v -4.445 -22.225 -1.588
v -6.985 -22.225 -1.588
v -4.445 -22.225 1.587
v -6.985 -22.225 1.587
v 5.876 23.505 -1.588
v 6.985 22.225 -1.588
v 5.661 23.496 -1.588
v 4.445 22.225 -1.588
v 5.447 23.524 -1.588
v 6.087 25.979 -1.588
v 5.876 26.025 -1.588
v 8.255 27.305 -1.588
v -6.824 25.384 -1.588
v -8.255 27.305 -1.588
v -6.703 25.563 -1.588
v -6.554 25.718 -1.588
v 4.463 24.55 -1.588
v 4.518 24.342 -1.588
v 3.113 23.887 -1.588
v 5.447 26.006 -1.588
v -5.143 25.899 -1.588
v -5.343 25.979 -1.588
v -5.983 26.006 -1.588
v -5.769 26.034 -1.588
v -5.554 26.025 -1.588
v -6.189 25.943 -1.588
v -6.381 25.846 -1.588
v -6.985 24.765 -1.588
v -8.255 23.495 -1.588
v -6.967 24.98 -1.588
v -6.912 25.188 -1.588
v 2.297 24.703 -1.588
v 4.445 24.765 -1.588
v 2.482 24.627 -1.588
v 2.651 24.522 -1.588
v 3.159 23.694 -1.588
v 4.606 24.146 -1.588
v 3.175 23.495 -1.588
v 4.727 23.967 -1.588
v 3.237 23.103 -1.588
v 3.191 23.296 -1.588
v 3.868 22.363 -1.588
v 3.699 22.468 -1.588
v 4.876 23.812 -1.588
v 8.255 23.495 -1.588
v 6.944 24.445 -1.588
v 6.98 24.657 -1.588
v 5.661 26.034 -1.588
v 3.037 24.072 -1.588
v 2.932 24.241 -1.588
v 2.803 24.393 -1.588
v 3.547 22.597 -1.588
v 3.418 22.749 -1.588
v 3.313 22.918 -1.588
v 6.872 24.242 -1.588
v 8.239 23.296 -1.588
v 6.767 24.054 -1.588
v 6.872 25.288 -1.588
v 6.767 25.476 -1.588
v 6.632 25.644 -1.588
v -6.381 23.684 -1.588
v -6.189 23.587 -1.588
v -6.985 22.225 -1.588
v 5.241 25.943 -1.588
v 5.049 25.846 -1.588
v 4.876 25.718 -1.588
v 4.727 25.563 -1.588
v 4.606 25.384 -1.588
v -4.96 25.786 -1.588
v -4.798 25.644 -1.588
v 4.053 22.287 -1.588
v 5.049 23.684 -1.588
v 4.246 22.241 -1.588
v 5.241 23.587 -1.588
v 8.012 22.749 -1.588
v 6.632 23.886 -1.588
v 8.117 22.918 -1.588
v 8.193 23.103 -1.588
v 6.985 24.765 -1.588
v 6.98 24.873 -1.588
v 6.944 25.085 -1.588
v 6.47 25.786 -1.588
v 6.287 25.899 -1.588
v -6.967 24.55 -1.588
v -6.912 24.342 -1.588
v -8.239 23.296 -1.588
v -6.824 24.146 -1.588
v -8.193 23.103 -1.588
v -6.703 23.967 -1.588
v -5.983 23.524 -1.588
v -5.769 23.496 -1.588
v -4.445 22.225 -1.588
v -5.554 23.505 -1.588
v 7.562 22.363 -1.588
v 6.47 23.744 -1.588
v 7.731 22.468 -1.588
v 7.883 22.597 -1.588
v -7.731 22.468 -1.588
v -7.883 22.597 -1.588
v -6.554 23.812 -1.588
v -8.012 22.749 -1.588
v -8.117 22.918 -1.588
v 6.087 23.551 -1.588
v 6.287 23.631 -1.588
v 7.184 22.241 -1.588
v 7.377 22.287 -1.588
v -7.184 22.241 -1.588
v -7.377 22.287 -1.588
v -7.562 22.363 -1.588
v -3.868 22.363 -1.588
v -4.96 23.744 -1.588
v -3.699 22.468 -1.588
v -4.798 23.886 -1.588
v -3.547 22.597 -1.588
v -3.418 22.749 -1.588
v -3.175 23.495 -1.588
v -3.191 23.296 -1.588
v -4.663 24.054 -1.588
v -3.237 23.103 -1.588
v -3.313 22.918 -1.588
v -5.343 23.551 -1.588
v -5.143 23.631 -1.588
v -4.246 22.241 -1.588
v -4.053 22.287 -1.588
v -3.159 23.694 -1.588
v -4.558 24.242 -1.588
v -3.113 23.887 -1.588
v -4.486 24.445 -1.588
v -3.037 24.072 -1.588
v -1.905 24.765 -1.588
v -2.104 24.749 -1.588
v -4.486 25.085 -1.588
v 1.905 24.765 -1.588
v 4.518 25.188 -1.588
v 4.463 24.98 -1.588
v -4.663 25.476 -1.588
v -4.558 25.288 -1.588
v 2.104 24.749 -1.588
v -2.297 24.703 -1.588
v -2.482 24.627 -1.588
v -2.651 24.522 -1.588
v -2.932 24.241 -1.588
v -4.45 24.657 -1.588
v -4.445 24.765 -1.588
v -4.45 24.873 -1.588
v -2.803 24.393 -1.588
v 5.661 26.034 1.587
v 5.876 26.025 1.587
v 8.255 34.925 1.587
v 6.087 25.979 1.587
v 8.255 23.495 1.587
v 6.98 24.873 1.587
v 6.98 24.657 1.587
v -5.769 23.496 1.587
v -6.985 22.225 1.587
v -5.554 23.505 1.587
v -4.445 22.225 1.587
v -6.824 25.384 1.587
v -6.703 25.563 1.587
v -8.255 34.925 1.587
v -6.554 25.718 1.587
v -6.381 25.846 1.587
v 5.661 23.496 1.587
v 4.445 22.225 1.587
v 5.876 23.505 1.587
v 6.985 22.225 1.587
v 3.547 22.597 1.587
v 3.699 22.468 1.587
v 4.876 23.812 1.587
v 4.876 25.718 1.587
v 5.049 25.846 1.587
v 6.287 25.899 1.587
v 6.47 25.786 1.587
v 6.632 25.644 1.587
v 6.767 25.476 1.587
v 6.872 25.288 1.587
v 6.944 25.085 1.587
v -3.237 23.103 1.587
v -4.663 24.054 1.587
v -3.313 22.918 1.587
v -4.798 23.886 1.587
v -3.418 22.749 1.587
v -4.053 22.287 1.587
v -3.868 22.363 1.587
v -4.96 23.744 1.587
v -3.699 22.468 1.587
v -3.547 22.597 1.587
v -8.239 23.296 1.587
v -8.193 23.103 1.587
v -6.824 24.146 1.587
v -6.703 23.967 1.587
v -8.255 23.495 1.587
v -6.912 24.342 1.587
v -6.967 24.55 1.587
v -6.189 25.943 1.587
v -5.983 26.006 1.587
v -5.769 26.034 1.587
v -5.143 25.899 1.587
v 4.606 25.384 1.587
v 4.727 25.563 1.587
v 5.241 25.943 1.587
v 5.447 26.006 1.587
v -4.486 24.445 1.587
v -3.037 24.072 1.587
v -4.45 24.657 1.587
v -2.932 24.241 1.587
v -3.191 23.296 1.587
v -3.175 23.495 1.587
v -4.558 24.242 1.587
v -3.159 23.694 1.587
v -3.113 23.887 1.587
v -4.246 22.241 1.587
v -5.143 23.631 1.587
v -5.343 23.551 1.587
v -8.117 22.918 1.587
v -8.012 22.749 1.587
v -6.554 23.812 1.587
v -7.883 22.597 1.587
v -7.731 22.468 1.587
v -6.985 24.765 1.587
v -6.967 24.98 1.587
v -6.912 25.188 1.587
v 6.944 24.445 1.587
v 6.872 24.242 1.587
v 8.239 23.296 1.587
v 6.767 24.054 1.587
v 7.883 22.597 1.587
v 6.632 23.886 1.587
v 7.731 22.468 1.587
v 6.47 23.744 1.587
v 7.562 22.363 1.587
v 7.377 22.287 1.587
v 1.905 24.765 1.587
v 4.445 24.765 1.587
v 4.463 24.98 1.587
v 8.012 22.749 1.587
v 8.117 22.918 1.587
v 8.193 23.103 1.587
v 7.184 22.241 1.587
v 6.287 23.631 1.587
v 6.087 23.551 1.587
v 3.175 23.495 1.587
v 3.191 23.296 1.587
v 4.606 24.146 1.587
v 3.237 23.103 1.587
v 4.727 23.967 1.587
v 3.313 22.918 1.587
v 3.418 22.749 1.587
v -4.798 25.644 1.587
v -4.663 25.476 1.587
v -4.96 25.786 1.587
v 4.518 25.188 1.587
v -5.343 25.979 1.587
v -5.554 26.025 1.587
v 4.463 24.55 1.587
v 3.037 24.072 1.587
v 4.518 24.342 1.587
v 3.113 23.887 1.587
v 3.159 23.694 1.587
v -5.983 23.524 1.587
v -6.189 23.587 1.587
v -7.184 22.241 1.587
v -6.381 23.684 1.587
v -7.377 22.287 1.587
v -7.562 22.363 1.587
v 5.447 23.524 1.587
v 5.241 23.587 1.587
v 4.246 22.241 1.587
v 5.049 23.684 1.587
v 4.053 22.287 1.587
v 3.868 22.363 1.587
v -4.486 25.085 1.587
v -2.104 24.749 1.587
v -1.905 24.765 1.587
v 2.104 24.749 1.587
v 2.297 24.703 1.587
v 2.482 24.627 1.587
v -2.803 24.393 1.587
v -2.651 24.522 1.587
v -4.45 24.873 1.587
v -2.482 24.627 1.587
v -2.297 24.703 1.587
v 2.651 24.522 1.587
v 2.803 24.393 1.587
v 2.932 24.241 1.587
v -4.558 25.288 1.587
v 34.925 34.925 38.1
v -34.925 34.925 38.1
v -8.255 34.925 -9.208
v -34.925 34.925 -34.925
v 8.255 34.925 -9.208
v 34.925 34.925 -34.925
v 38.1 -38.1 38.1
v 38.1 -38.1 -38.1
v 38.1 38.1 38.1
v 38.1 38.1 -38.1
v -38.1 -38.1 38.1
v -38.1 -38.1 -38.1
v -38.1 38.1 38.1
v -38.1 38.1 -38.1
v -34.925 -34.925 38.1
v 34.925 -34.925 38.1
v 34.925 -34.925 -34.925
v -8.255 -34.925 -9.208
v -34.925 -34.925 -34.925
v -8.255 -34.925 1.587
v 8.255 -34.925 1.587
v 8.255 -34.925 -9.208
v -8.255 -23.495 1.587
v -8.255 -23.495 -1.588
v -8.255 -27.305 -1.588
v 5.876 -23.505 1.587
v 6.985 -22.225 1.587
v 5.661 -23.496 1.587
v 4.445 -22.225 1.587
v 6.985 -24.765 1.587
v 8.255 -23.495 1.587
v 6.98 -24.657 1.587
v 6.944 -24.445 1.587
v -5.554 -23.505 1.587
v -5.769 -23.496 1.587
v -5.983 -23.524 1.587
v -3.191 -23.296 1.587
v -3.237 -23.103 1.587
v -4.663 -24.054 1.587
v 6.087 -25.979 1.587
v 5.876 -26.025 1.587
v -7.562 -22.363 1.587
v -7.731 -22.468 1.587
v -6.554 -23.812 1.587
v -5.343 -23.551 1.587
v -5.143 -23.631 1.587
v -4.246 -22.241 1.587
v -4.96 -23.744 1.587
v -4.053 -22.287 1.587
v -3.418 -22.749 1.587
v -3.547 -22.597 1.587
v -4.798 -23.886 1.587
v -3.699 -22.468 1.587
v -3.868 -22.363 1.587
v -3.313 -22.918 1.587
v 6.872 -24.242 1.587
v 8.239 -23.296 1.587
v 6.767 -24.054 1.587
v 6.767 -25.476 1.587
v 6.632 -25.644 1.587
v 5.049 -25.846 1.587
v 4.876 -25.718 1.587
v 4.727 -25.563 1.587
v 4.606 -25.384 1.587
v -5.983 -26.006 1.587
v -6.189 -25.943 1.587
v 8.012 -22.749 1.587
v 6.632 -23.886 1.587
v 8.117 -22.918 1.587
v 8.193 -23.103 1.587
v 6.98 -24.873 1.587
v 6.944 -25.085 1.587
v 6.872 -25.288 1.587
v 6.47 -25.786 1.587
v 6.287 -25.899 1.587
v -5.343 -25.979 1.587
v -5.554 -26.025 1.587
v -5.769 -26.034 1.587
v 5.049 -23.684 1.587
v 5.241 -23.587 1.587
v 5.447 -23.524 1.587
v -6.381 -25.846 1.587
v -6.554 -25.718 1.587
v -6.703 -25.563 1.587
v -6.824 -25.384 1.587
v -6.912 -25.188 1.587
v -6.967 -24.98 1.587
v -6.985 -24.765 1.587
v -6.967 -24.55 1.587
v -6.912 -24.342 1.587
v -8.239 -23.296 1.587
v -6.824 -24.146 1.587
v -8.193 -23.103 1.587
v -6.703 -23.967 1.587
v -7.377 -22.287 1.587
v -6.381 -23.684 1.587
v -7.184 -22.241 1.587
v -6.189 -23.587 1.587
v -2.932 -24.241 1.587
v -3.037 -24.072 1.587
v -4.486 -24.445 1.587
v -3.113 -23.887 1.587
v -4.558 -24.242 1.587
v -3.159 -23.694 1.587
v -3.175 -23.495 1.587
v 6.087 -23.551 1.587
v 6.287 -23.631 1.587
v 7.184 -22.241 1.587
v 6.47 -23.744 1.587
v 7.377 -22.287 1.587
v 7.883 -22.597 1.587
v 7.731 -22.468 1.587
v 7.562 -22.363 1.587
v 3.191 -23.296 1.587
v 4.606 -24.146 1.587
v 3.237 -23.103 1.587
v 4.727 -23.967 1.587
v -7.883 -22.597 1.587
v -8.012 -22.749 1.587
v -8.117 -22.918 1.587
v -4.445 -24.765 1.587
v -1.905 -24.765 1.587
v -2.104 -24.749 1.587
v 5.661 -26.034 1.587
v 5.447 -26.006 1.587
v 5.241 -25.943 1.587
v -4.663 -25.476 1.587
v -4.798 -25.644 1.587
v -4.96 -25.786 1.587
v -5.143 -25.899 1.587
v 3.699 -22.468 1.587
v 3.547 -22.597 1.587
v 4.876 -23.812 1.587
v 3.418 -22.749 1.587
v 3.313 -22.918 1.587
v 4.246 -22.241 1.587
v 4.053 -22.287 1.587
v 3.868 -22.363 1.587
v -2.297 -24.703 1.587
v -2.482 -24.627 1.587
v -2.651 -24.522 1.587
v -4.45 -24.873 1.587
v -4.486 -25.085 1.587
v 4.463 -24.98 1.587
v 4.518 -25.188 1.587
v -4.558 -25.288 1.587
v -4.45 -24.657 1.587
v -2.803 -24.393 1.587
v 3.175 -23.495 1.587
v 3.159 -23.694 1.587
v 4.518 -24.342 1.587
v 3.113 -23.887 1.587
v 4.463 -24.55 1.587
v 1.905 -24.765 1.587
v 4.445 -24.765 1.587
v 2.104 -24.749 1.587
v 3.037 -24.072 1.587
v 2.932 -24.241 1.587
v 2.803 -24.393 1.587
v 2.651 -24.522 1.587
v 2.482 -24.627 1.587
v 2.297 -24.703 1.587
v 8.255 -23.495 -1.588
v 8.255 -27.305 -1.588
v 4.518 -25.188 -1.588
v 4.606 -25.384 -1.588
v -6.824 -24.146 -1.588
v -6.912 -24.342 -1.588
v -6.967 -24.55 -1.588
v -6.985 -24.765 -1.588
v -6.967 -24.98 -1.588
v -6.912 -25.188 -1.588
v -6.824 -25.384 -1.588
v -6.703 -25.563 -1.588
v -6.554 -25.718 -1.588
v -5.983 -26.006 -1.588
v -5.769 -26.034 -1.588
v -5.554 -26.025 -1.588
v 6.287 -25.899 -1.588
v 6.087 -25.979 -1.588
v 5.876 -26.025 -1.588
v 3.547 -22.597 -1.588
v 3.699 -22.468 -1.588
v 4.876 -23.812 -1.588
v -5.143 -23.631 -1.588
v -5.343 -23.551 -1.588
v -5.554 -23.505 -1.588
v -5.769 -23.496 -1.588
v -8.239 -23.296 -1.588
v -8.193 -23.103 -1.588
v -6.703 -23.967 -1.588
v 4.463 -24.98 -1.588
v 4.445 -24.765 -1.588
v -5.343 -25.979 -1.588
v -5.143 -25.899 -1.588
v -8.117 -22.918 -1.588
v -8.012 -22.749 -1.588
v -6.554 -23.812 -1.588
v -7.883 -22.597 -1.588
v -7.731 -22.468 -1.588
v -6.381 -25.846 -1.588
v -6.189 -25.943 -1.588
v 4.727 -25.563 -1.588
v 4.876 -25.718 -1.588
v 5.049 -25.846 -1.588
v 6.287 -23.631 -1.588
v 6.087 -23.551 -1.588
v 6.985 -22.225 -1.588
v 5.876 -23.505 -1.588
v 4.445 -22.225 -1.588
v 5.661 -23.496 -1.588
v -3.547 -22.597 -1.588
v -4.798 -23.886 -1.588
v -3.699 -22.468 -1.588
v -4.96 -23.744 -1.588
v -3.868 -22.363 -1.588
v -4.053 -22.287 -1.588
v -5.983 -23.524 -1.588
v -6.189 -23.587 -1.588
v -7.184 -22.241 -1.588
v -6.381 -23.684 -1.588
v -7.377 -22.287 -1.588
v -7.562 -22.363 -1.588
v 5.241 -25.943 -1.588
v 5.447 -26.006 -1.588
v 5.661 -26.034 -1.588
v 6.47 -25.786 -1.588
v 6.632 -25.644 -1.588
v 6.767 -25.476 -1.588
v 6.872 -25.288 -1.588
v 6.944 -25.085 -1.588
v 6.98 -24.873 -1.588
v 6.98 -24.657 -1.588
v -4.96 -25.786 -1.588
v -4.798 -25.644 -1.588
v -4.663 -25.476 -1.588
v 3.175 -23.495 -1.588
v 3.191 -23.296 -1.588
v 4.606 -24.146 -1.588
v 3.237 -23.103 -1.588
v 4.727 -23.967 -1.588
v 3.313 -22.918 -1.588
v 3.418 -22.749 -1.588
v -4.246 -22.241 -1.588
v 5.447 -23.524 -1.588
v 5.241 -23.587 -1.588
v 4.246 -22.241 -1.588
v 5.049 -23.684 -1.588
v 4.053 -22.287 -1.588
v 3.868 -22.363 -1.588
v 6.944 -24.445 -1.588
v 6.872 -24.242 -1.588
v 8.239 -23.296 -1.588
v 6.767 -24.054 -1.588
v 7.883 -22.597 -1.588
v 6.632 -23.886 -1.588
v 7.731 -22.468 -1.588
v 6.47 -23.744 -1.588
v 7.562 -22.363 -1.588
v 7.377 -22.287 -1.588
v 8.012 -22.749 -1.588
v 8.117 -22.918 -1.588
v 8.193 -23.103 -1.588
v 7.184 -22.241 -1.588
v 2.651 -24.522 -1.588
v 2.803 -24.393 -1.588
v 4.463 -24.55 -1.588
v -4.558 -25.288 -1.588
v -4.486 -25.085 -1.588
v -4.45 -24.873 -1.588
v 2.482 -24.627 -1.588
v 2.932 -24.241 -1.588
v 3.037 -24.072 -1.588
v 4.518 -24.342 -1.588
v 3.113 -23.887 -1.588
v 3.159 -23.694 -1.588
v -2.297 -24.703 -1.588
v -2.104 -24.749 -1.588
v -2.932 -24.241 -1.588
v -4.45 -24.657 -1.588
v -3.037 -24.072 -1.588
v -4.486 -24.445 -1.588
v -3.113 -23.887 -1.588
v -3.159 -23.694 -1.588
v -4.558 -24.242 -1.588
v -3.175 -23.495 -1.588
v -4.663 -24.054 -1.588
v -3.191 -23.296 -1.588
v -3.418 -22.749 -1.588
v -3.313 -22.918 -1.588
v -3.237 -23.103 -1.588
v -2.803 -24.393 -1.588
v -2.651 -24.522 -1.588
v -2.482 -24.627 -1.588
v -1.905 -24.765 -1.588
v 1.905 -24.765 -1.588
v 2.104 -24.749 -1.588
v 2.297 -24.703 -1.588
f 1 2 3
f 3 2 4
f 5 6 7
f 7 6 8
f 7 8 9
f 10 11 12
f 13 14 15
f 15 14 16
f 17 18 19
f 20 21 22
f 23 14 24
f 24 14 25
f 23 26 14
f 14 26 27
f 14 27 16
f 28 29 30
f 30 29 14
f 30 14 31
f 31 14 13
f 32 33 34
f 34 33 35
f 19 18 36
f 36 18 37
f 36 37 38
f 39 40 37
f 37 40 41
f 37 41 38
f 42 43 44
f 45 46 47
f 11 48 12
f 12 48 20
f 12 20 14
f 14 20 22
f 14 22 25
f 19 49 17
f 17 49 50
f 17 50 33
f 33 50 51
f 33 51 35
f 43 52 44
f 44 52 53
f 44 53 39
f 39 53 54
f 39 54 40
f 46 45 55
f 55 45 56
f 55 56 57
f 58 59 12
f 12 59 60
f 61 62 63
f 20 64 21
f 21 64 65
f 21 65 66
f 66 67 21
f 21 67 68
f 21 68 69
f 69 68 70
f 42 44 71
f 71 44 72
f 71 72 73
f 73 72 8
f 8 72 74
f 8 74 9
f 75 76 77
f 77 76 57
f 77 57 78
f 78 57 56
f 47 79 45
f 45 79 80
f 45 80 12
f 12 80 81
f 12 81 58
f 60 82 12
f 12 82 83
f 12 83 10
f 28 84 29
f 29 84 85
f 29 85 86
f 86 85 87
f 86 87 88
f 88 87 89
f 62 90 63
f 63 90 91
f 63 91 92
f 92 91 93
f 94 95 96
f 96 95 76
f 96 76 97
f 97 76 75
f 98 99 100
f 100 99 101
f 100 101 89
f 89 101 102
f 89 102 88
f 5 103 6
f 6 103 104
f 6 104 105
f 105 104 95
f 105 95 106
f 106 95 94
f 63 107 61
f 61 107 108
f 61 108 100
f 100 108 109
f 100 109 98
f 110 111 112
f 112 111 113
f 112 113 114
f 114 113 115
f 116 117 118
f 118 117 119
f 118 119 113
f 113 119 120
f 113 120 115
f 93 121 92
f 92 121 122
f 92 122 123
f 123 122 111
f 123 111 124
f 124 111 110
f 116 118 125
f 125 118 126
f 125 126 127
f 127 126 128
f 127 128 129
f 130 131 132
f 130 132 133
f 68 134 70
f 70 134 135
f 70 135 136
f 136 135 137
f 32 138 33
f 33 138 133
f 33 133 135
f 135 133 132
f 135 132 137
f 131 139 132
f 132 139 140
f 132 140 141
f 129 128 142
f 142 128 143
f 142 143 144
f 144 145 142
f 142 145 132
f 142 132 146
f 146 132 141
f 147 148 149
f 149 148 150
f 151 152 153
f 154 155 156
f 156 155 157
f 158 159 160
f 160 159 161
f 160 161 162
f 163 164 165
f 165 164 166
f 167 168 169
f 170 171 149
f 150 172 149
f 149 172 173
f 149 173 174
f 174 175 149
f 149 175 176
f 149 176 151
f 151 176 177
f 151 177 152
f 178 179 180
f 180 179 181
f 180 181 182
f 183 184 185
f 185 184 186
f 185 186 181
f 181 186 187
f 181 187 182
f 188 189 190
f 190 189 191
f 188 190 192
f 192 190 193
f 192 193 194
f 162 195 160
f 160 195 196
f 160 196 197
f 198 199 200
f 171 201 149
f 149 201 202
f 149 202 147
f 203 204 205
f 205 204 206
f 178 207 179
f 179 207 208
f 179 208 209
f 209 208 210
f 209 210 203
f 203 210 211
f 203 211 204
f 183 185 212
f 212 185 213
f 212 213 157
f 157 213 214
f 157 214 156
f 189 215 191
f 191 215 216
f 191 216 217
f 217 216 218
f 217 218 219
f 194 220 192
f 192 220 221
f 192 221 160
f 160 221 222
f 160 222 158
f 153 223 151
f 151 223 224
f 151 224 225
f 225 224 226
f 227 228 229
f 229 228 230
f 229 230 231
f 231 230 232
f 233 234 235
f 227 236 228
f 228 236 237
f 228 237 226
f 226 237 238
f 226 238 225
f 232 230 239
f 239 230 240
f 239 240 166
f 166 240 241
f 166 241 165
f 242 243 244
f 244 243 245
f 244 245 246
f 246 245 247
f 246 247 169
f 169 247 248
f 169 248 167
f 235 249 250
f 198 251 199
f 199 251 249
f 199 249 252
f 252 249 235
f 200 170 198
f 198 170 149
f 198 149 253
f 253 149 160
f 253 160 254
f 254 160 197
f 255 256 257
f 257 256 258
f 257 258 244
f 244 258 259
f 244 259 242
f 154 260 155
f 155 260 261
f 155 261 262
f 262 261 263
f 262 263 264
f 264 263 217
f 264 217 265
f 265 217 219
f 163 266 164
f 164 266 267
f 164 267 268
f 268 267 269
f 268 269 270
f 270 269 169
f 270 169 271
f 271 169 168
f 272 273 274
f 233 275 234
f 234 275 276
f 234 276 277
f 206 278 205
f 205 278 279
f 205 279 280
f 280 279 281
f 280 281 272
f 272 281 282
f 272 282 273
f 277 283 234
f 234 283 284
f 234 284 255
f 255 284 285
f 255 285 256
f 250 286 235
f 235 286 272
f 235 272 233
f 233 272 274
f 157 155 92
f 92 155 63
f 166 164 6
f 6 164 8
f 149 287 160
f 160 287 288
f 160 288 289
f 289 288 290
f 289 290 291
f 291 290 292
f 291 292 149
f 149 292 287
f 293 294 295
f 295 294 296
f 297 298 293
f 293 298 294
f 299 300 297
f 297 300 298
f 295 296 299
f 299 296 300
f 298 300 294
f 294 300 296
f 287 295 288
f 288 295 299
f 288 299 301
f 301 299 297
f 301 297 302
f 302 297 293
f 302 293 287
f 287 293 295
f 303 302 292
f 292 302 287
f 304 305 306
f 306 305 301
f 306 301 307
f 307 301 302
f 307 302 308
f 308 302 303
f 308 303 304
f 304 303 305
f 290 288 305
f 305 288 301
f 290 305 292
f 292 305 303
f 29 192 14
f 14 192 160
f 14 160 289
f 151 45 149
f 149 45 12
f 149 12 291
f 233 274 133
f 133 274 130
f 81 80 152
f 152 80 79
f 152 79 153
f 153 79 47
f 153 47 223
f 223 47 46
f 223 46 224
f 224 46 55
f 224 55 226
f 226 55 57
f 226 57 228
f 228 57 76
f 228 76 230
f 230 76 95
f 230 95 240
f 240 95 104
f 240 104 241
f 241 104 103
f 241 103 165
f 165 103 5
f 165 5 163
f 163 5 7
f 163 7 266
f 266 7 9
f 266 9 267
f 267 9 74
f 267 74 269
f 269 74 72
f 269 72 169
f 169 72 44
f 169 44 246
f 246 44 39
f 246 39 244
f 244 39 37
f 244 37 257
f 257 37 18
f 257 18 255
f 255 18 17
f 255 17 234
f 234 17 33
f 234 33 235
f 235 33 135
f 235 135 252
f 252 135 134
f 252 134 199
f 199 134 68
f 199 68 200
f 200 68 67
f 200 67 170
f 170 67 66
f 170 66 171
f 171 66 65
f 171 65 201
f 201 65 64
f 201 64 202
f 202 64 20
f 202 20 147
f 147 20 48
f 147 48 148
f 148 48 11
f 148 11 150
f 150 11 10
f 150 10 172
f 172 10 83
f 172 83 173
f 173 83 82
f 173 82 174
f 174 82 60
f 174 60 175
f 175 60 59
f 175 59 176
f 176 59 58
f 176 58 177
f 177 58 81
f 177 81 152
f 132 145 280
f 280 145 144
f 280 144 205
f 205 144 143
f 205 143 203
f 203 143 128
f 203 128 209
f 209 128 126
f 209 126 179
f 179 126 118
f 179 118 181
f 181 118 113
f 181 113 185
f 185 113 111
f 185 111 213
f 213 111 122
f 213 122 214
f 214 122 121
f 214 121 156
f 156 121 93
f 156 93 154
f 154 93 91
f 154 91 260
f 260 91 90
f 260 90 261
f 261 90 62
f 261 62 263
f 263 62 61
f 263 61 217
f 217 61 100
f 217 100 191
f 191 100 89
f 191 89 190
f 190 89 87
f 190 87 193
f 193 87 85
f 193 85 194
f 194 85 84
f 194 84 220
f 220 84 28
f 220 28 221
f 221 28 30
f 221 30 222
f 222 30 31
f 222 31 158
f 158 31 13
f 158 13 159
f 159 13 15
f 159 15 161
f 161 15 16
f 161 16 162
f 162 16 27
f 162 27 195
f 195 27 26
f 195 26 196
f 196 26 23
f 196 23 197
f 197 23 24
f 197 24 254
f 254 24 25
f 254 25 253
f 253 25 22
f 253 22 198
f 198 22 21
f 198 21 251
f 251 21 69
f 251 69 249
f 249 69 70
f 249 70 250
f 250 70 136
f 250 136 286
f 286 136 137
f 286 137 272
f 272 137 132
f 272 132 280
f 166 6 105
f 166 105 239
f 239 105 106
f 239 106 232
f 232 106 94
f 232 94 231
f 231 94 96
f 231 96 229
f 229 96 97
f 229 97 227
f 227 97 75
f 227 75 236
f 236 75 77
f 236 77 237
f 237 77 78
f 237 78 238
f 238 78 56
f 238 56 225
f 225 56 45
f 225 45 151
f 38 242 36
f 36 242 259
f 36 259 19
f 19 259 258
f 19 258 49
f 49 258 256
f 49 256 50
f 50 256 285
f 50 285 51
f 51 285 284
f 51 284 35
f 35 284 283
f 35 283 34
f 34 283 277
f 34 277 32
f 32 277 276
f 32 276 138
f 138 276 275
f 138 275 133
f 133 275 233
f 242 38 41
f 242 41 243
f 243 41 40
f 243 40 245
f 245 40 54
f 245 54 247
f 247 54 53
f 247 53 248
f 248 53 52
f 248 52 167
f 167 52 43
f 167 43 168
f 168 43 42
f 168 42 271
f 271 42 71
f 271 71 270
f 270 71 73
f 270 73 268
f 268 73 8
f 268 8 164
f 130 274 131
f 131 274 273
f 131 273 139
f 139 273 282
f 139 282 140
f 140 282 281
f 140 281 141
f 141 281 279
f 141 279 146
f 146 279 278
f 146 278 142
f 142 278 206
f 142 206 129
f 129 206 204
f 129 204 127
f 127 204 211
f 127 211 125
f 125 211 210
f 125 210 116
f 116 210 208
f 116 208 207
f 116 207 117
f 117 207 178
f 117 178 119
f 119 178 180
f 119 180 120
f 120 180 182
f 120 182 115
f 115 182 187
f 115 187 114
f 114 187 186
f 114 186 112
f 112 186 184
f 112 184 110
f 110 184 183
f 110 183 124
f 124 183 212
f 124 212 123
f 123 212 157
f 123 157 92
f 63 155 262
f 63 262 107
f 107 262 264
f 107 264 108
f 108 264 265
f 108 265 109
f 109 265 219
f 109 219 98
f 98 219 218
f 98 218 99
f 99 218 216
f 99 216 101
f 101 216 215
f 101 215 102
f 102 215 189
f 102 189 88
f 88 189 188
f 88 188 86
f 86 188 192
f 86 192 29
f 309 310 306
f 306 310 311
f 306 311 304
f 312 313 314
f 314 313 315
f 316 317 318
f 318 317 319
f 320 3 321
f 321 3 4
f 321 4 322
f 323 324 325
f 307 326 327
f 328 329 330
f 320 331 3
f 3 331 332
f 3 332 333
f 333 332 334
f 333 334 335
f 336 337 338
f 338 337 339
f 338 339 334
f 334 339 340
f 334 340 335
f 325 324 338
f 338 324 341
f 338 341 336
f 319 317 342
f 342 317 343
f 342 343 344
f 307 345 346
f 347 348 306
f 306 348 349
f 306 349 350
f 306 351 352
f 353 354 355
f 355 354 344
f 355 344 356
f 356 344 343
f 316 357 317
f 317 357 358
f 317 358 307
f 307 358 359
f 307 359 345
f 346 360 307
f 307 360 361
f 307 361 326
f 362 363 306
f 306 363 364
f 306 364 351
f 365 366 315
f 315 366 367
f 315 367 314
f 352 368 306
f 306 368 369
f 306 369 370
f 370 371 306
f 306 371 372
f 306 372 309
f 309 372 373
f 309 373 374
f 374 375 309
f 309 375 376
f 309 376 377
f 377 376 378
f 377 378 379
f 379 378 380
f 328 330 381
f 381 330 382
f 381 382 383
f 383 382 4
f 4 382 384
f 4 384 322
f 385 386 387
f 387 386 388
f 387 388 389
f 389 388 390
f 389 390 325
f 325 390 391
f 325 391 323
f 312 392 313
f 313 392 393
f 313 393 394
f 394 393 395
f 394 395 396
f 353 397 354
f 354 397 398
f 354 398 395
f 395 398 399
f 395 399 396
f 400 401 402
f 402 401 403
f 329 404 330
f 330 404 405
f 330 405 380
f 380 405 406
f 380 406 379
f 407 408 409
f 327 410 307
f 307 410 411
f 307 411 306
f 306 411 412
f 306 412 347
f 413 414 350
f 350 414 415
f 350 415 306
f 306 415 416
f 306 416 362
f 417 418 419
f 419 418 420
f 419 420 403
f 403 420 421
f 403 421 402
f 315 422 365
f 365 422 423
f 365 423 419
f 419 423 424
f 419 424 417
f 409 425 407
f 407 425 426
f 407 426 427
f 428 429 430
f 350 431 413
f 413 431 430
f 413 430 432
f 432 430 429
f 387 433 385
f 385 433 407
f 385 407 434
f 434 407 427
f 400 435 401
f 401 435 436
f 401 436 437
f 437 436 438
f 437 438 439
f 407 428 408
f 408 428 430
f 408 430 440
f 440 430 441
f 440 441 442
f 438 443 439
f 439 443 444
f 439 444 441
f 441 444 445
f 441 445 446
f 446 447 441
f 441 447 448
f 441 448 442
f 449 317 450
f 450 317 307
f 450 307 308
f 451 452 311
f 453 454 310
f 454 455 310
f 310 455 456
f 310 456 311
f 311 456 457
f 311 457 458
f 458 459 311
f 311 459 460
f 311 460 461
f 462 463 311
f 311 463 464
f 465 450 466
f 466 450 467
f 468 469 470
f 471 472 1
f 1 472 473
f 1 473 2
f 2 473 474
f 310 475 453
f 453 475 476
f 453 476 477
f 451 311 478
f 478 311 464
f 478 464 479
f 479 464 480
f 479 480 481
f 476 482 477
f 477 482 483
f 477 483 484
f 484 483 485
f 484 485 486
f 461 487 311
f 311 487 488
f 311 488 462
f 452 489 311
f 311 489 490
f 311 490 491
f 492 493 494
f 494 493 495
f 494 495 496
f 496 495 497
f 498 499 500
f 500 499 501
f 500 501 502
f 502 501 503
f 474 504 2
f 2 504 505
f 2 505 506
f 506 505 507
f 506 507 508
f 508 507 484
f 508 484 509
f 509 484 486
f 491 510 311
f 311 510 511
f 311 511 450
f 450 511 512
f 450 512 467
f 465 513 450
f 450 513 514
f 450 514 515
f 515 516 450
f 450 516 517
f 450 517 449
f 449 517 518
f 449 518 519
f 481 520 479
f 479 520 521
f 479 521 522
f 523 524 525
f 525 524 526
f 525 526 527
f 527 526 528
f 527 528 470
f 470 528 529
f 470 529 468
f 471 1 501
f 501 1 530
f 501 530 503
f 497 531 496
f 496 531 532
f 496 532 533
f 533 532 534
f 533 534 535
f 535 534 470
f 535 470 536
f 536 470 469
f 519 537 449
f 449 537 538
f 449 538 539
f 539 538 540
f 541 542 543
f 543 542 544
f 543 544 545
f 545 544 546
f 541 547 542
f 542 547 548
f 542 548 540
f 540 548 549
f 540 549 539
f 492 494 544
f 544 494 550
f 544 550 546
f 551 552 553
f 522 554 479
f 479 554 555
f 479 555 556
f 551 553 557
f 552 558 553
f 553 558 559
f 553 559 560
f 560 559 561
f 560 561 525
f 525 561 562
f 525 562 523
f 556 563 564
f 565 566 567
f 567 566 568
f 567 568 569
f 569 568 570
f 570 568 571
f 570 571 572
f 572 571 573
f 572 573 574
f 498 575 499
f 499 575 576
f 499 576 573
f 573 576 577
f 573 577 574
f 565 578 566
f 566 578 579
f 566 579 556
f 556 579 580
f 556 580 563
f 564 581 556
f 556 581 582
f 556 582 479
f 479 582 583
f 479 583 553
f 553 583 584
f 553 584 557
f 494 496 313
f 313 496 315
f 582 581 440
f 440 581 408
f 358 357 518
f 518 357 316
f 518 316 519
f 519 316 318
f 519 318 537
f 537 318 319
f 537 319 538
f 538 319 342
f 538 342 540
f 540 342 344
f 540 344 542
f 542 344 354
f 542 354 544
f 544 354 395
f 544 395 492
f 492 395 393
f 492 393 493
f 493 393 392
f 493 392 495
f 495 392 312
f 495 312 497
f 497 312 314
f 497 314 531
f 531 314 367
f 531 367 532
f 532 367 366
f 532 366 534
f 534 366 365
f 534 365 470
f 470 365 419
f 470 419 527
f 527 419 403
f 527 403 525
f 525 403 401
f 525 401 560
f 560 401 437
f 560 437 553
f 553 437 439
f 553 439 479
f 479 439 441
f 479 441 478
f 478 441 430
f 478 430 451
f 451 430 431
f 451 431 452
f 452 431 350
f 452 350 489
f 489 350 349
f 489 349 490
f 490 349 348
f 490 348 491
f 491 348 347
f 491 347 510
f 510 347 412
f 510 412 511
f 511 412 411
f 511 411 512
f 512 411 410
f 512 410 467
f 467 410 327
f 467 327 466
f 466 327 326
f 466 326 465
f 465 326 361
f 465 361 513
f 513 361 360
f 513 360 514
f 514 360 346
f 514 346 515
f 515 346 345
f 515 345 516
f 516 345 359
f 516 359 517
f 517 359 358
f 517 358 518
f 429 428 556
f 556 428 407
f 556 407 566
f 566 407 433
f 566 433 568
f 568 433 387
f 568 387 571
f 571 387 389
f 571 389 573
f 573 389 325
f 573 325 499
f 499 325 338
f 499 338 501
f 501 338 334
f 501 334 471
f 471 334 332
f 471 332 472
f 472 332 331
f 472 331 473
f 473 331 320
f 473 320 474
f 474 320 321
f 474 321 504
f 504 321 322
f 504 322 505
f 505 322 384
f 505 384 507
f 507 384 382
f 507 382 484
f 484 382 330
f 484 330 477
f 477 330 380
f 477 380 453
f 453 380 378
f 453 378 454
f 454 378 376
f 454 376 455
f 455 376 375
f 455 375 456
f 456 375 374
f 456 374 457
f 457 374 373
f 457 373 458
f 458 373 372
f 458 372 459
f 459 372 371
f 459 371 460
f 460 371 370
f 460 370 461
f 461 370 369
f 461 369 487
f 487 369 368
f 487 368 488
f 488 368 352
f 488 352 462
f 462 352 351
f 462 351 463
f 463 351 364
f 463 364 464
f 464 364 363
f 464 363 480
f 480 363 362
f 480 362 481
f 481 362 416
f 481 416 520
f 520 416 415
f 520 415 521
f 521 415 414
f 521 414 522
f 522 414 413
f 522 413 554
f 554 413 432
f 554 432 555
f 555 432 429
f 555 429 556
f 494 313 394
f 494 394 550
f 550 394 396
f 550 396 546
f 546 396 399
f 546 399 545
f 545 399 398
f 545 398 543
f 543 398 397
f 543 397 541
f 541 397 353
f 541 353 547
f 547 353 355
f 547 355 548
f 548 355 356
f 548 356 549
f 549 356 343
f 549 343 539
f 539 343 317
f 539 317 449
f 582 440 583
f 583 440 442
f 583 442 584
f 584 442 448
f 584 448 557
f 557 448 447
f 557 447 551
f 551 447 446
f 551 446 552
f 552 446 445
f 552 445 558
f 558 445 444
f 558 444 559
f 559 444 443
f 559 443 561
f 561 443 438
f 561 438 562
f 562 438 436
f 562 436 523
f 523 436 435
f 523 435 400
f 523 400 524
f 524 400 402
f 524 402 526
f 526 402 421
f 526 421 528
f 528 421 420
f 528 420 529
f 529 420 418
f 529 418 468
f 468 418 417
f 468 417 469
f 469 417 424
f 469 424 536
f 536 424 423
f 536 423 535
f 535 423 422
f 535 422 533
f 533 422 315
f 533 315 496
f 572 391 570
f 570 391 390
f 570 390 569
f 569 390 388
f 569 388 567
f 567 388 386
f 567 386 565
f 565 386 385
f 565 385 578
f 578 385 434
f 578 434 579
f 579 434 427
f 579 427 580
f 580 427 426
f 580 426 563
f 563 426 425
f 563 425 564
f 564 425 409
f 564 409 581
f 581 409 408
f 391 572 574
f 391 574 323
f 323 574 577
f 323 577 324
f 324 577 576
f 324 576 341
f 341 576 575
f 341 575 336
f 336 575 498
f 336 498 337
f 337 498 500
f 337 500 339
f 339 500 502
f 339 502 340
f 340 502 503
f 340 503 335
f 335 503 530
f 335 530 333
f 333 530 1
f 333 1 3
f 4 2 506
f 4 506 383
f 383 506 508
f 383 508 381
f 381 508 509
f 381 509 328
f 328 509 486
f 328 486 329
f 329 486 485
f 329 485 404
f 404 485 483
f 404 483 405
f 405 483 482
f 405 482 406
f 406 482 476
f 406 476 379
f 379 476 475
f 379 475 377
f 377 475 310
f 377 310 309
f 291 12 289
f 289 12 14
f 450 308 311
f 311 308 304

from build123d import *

# Parameters (mm, degrees)
BOSS_EXTRUDE1_DEPTH      = 38.1
BOSS_EXTRUDE1_DEPTH_BACK = 38.1
SKETCH1_W                = 76.2
SKETCH1_H                = 76.2
SHELL1_T                 = -3.175
SKETCH2_W                = 16.51
SKETCH2_H                = 3.175
BOSS_EXTRUDE2_DEPTH      = 12.7
SKETCH3_R                = 1.27
SKETCH3_W                = 6.35
SKETCH3_H                = 2.54
CUT_EXTRUDE1_DEPTH       = 12.7
FILLET1_R                = 1.27
FILLET1_OF_MIRROR2_R     = 1.27
CHAMFER1_SIZE            = 7.62


with BuildPart() as part:
    # Sketch1 → Boss-Extrude1 (new, two sides: drawn at the far end of the back side and taken through both)
    with BuildSketch(Plane.XY.offset(-BOSS_EXTRUDE1_DEPTH_BACK)):
        Rectangle(SKETCH1_W, SKETCH1_H)
    extrude(amount=BOSS_EXTRUDE1_DEPTH + BOSS_EXTRUDE1_DEPTH_BACK)

    # Shell1
    shell1_openings = [part.faces().sort_by_distance(p)[0] for p in [
        (0, 0, 38.1),
    ]]
    offset(amount=SHELL1_T, openings=shell1_openings, kind=Kind.INTERSECTION)

    # Sketch2 → Boss-Extrude2 (add)
    with BuildSketch(Plane.XZ.offset(-34.925)):
        Rectangle(SKETCH2_W, SKETCH2_H)
    boss_extrude2 = extrude(amount=BOSS_EXTRUDE2_DEPTH)

    # Sketch3 → Cut-Extrude1 (cut, symmetric)
    with BuildSketch(Plane.XY.offset(1.5875)):
        with Locations(Location((-5.715, 24.765, 0), (0, 0, 180))):
            Circle(SKETCH3_R)
        with Locations(Location((5.715, 24.765, 0), (0, 0, 180))):
            Circle(SKETCH3_R)
        with Locations((0, 23.495)):
            Rectangle(SKETCH3_W, SKETCH3_H)
    cut_extrude1 = extrude(amount=CUT_EXTRUDE1_DEPTH, both=True, mode=Mode.SUBTRACT)

    # Fillet1
    fillet1_edges = [part.edges().sort_by_distance(p)[0] for p in [
        (-3.175, 24.765, 0),
        (8.255, 22.225, 0),
        (3.175, 22.225, 0),
        (-3.175, 22.225, 0),
        (-8.255, 22.225, 0),
        (3.175, 24.765, 0),
    ]]
    fillet(fillet1_edges, radius=FILLET1_R - 0.0001)  # a hair under: the kernel refuses the full size

    # Mirror2: Boss-Extrude2, Cut-Extrude1 across plane
    add(boss_extrude2.mirror(Plane.ZX))
    add(cut_extrude1.mirror(Plane.ZX), mode=Mode.SUBTRACT)

    # Fillet1 of Mirror2
    fillet1_of_mirror2_edges = [part.edges().sort_by_distance(p)[0] for p in [
        (-3.175, -24.765, 0),
        (8.255, -22.225, 0),
        (3.175, -22.225, 0),
        (-3.175, -22.225, 0),
        (-8.255, -22.225, 0),
        (3.175, -24.765, 0),
    ]]
    fillet(fillet1_of_mirror2_edges, radius=FILLET1_OF_MIRROR2_R - 0.0001)  # a hair under: the kernel refuses the full size

    # Chamfer1
    chamfer1_edges = [part.edges().sort_by_distance(p)[0] for p in [
        (0, -34.925, -1.5875),
        (0, 34.925, -1.5875),
    ]]
    chamfer(chamfer1_edges, length=CHAMFER1_SIZE)


solid = part.part
